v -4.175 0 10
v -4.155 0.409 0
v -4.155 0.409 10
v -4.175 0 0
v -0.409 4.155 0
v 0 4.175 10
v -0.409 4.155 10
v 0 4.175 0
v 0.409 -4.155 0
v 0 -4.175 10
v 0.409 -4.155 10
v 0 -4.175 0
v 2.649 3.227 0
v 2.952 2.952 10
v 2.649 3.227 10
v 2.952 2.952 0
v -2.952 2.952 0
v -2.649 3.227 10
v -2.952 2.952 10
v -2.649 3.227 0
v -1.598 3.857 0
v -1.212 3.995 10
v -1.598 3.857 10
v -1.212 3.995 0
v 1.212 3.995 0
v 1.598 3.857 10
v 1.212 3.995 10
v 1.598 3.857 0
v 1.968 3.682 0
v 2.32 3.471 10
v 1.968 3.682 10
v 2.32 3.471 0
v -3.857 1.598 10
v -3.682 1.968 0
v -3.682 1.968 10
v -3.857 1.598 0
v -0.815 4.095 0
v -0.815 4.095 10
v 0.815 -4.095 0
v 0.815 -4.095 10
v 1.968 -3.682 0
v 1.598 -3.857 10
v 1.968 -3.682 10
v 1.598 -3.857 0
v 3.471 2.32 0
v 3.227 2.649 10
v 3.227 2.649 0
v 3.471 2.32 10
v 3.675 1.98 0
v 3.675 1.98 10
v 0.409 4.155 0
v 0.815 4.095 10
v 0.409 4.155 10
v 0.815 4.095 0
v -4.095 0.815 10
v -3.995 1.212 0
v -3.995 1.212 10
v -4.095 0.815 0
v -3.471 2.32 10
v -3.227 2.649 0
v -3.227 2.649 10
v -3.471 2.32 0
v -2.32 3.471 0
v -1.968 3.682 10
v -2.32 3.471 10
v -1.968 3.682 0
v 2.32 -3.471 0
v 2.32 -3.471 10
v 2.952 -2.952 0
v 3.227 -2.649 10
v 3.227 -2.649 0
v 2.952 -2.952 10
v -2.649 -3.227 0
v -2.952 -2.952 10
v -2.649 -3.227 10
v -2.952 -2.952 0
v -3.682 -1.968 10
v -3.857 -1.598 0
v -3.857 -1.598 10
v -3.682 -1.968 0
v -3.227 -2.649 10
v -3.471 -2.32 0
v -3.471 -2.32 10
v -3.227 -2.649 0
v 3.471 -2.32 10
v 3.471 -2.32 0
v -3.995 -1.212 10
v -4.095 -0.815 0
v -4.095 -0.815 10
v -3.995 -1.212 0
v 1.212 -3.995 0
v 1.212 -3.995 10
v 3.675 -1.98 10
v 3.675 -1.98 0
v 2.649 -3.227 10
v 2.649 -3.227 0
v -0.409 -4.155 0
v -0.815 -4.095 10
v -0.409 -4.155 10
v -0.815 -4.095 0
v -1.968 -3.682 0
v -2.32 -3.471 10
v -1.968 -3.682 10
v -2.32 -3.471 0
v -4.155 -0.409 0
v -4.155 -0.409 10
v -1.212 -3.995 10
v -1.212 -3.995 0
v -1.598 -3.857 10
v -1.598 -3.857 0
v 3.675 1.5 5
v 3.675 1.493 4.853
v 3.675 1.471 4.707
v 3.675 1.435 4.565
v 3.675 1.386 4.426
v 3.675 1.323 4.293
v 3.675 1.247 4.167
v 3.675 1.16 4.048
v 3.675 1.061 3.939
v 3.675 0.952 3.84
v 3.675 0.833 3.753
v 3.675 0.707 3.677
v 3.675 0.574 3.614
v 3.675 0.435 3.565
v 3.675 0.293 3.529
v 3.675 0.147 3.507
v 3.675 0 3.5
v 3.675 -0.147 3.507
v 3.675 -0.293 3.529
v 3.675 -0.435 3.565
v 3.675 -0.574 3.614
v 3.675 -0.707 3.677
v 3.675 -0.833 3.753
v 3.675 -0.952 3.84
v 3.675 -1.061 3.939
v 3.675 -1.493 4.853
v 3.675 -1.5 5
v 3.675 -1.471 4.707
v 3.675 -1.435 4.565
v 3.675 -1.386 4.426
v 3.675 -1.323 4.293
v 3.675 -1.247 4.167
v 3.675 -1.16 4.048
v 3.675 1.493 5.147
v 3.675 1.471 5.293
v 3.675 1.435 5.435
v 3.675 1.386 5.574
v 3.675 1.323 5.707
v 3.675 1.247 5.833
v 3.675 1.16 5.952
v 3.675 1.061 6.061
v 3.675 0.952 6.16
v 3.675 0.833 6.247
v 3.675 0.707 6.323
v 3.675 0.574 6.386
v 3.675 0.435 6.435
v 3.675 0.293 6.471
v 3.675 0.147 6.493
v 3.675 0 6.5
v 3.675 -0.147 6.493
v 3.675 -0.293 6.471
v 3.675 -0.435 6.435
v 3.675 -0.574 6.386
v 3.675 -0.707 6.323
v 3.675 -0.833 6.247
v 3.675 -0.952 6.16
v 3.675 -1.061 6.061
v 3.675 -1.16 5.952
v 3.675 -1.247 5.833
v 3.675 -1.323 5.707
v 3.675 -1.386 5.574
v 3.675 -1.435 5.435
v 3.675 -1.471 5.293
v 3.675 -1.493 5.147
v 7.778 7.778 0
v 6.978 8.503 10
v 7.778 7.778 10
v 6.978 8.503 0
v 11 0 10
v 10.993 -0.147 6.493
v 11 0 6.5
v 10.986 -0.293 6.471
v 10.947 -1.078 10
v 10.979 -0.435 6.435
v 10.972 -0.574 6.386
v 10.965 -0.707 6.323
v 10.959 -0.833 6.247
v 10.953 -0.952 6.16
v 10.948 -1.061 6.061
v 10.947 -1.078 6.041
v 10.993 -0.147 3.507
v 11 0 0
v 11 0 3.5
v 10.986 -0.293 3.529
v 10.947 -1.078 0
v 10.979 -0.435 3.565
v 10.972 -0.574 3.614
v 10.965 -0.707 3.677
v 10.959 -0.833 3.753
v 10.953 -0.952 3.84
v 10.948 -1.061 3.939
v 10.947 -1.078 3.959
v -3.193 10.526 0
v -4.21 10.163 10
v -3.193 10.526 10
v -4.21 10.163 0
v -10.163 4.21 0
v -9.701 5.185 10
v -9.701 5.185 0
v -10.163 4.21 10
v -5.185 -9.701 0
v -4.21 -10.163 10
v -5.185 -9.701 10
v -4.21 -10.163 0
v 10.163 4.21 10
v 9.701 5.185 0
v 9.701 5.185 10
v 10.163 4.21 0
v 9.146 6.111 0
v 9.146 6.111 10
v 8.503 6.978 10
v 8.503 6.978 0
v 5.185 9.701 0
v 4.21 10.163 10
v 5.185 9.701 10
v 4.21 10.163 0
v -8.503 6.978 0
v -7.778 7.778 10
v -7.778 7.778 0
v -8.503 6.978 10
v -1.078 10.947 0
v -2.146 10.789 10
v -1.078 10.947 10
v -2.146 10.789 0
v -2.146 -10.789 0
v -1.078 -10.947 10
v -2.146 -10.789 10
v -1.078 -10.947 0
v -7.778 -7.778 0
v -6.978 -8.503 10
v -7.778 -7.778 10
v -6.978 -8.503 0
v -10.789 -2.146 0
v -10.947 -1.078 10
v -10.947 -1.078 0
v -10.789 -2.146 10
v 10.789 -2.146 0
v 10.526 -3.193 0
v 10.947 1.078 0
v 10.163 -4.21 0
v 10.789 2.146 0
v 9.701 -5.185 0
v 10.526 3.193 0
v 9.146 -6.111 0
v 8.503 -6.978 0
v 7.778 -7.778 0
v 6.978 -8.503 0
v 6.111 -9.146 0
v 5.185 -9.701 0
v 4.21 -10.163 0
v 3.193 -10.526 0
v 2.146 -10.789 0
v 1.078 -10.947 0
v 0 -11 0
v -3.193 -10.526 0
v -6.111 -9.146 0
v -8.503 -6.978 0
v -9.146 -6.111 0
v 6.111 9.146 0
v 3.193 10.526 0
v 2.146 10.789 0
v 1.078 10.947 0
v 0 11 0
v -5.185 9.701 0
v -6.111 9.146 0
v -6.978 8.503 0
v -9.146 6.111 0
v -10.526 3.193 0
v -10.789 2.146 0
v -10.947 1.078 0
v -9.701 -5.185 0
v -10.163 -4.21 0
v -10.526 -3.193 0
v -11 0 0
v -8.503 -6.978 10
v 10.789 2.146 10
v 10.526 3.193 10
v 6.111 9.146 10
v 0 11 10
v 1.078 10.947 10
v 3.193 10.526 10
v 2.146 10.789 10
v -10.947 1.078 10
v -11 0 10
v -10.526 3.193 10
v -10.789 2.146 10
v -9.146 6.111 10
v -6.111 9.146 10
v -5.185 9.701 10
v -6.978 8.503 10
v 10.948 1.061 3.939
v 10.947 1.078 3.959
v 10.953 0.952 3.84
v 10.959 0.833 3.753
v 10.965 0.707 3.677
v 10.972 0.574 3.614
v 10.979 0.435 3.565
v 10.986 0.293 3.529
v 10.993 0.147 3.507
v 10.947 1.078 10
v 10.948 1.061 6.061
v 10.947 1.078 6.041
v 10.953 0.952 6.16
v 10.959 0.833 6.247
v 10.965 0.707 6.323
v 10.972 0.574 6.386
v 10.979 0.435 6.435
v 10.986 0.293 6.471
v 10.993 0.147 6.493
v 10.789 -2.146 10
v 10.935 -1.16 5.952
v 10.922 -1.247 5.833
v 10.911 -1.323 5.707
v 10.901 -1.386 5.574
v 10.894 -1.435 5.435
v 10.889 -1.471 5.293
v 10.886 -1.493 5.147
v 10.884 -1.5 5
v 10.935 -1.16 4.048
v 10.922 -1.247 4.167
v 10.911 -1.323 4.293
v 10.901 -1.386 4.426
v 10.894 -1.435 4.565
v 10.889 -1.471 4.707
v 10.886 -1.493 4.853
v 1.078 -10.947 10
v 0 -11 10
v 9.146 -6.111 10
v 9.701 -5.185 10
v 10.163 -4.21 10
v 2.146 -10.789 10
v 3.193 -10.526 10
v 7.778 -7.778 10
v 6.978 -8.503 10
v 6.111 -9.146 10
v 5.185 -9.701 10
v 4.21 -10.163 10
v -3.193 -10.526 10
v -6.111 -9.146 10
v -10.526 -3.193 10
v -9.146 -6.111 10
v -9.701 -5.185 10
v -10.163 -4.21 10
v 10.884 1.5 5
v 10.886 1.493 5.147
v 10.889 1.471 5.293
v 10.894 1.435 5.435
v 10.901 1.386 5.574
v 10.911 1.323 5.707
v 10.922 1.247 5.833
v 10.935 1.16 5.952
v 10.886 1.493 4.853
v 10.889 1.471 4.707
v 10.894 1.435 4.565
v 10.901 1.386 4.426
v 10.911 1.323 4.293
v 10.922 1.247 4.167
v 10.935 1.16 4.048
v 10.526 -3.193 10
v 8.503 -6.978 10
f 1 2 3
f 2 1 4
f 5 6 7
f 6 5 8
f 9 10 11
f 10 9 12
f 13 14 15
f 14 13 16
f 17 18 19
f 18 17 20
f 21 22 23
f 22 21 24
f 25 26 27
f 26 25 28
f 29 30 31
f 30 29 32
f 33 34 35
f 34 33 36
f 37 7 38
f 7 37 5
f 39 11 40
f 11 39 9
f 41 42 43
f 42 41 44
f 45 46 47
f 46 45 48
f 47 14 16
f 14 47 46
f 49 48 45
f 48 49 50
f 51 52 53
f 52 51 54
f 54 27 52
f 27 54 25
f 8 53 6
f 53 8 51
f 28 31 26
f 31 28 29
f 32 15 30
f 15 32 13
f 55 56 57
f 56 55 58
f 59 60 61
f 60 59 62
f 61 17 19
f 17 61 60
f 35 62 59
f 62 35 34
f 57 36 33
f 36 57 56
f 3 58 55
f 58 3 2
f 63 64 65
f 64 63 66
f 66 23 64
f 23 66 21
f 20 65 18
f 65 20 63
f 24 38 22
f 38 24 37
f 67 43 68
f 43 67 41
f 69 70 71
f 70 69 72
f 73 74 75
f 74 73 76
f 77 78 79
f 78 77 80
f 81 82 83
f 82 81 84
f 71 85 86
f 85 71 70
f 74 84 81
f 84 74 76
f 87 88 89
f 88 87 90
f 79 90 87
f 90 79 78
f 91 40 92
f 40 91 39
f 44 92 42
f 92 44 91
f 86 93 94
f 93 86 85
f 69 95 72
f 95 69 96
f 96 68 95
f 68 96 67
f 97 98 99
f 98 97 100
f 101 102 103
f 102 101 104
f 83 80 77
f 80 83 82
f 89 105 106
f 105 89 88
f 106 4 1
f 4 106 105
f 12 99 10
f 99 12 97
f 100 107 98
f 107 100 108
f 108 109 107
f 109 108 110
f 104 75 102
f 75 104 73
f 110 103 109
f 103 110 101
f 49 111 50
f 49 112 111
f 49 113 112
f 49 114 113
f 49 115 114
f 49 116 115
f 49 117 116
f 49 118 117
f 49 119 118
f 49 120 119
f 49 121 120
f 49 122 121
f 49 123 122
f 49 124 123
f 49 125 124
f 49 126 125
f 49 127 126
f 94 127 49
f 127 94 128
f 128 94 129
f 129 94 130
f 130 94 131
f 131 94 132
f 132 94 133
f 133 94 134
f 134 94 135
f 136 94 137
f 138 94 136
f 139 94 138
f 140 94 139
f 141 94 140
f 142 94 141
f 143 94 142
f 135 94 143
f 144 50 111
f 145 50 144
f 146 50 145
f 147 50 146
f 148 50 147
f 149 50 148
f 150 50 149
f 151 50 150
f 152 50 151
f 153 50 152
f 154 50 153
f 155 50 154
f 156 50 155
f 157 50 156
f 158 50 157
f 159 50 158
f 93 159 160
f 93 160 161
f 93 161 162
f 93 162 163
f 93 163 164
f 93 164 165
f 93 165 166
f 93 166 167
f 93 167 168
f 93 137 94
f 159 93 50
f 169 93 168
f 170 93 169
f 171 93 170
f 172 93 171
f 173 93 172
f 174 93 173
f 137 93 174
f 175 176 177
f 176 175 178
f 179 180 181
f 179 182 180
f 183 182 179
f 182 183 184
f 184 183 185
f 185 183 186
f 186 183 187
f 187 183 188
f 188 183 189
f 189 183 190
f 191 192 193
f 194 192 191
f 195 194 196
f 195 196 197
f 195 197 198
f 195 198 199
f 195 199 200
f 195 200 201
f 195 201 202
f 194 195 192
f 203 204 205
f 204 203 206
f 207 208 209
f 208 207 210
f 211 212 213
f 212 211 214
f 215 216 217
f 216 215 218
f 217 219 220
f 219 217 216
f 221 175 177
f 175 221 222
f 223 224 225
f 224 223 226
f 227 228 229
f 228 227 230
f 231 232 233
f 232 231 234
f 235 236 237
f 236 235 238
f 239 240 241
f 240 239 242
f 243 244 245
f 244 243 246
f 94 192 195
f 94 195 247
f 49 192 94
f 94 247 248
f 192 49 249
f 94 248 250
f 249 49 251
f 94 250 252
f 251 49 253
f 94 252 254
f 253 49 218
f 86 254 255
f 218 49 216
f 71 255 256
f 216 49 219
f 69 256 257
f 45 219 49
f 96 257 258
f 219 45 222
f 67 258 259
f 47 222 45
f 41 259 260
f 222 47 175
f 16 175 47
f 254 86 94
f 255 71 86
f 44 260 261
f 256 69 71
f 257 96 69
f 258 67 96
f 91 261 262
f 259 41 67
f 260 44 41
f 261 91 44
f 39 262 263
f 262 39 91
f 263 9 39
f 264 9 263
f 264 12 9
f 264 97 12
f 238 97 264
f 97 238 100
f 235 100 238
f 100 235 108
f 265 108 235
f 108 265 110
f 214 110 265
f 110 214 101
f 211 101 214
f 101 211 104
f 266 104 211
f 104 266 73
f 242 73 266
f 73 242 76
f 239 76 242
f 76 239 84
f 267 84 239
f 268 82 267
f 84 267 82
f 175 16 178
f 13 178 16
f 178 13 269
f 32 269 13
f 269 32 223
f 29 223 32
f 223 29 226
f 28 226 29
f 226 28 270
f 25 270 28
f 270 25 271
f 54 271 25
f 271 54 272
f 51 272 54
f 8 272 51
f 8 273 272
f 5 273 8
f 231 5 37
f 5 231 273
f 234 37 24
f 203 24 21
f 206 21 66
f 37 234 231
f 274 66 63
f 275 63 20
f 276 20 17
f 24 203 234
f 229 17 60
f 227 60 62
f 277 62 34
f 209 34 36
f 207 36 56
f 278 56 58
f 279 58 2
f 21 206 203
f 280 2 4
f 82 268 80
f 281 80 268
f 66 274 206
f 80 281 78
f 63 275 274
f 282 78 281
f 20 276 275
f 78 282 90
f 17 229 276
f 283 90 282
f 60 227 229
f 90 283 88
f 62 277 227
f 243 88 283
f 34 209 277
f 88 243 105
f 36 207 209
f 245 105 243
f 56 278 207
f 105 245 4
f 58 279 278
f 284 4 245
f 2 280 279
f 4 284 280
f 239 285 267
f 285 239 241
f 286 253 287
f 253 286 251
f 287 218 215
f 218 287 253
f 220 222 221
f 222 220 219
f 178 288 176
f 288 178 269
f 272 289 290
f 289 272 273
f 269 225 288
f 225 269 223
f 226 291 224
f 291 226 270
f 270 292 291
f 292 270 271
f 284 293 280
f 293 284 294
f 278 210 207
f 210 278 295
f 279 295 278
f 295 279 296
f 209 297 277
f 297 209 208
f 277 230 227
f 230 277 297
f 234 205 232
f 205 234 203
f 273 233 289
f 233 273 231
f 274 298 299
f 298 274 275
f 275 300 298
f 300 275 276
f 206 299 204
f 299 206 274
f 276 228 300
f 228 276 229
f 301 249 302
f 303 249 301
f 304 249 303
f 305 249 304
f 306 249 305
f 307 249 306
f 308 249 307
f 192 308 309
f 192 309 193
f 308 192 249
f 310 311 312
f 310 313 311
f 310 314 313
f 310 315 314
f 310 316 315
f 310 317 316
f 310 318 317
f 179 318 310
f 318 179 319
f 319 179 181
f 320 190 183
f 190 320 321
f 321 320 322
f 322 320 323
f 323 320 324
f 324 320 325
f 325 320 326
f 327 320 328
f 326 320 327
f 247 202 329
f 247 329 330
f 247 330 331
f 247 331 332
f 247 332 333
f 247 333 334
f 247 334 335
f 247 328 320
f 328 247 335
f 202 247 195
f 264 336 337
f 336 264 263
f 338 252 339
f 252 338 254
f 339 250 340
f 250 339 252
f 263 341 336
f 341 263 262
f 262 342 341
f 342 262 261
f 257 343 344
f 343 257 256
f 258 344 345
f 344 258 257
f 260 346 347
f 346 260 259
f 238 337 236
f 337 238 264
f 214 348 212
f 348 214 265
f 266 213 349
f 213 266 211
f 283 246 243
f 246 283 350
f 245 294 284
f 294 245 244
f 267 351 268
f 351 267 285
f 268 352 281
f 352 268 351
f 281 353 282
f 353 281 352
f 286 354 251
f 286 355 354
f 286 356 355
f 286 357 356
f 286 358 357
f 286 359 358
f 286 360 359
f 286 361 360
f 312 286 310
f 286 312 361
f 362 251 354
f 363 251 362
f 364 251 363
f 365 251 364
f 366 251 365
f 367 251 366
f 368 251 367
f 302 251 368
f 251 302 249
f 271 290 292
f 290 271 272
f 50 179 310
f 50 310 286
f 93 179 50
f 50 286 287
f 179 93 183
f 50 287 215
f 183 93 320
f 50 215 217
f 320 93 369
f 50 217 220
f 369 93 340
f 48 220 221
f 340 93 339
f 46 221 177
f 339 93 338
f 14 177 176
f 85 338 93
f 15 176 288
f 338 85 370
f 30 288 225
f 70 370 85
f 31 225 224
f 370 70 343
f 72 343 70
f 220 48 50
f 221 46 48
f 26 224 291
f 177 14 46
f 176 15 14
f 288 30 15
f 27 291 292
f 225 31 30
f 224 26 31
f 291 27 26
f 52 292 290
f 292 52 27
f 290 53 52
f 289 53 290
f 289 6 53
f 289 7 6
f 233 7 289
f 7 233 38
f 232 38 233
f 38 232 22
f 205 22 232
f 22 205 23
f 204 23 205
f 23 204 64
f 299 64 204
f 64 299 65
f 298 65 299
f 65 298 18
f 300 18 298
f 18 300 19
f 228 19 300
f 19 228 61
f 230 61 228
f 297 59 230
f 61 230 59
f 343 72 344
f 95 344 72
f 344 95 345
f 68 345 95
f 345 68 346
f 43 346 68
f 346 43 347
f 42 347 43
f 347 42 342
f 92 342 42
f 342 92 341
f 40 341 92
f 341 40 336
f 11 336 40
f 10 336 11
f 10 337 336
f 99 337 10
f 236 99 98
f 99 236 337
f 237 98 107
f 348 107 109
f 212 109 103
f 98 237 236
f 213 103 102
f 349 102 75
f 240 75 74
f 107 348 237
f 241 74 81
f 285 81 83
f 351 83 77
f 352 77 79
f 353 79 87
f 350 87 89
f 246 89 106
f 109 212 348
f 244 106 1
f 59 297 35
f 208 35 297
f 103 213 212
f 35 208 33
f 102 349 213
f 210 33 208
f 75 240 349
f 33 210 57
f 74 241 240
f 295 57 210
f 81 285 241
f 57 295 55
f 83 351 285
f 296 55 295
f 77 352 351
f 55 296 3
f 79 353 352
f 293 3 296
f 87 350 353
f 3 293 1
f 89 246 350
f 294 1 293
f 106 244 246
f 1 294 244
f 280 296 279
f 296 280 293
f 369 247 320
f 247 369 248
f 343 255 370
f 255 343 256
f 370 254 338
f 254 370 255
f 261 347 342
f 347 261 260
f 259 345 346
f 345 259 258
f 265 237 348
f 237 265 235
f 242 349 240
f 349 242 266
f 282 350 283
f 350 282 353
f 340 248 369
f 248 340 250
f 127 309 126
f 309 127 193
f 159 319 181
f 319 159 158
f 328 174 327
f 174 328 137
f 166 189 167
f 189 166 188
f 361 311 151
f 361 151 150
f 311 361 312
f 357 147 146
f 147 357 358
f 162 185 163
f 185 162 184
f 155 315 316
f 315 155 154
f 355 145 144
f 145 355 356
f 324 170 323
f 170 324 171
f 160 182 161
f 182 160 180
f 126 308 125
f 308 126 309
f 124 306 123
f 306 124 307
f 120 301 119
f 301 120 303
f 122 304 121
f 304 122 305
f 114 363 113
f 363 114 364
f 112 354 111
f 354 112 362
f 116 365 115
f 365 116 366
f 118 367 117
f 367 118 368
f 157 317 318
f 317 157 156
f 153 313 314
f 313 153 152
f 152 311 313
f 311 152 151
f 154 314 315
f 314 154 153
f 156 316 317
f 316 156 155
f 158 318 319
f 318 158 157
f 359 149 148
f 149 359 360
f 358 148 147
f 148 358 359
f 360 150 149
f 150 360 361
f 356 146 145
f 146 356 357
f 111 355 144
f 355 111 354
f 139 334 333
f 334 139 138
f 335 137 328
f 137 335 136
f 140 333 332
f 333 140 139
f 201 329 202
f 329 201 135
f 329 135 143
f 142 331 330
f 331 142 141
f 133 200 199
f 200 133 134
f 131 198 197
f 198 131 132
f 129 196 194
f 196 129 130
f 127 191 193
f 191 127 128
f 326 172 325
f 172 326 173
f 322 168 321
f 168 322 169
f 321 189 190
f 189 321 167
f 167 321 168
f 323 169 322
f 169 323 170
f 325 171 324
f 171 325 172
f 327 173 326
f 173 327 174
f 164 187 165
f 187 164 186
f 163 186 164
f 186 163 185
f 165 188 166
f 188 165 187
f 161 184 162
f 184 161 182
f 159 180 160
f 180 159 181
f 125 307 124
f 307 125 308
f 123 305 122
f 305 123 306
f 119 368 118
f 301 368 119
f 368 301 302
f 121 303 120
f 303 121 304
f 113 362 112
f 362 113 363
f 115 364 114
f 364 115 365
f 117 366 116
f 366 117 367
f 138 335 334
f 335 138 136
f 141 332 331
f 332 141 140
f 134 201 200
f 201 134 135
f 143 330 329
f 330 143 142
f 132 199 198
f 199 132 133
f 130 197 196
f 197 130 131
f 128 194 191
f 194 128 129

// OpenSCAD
// file: parameters.scad
// =============================================================================
// Gen-BZ — nightly 2026-10-11 (physics_scorer, honest magpylib watts)
// Minimum-gap, wire-saver stator for the Gen-BX rotors: only 5.4 mm of copper (12 layers), so the magnet faces are just 8.0 mm apart and peak Bz at the copper reaches ≈0.64 T. It holds ~20 % less copper than Gen-BX (≈300 m, leaving ~90 m of the spool spare and much less winding), and loses only ≈5.5 % of the watts vs Gen-BX — the best watts-per-metre of wire tonight.
// Clocking 0 deg (magnets N facing S) + D-flat keyed bore + index notch + flip-symmetric hole map.
// Windable 2-piece bobbin; turns = physics_scorer turns_fit; copper only between flanges.
// Steel back-iron: 2× Ø168 × 4.76 mm (3/16") mild-steel discs (steel_backiron_disc.dxf); magnets sit ON the steel
// (through-pockets) -> score with --back-iron. Night 2026-10-11.
// =============================================================================
topology            = "dual_rotor";

// --- Wire / winding (physics_scorer winding-fit) -------------------------------
wire_awg            = 26;
wire_od             = 0.45;     // insulated OD mm (bare 0.405)
fill_realistic      = 0.65;     // insulated-wire area / window (DENSE layered wind with a jig; scorer cap 0.65)
turns               = 328;       // = physics_scorer turns_fit (do NOT raise)
coil_former_type    = "bobbin";
coil_core_inset     = 14.87;     // radial copper build: hub = copper boundary inset by this
wind_build_axial    = 0.0;      // nothing proud of the flanges
wind_build_radial   = 0.0;

// --- Bobbin (base + lid) ---------------------------------------------------------
coil_id_r           = 53.00;    // copper boundary sector
coil_od_r           = 88.00;
span_deg            = 26.43;    // = pitch - 2*asin((wall+0.85)/coil_id_r) -> >=1.2 mm stator web
former_web          = 5.40;     // copper height between flanges (TALL copper: steel keeps Bz up)
flange_t            = 0.80;     // >= 0.8 mm FDM wall rule (tall winds push on the flanges)
wall                = 0.80;     // flange lip beyond copper
former_bare_h       = former_web + 2 * flange_t;
coil_envelope_h     = former_bare_h + 2 * wind_build_axial;
tab_w               = 7.0;
tab_len             = 7.0;
tab_h               = former_bare_h / 2;
pin_d               = 1.9;      // 1.75 mm filament locating pin
coil_mount_r        = coil_od_r + 0.2 + 4.0;
lead_y              = 1.6;
lead_slot_w         = 0.9;
lead_groove_d       = 0.6;

// --- Gap -------------------------------------------------------------------------
run_clear           = 0.50;     // rotor face -> flange
gap_spacer_h        = run_clear + wind_build_axial;
m2m                 = coil_envelope_h + 2 * run_clear;   // rotor face to rotor face (= gap_sleeve length)

// --- Stator ----------------------------------------------------------------------
coil_stations       = 12;
bay_clear           = 0.25;
stator_thick        = former_bare_h;                        // bobbins flush both faces
stator_od           = 194;
shaft_clear_stator  = 14.0;     // stator is static; gap sleeve OD 12 spins inside

// --- Rotor(s) --------------------------------------------------------------------
magnet_Br           = 1.43;     // N52
magnet_d_large      = 20.0;
magnet_h_large      = 5.0;      // one O20x5 per pocket
magnet_h_small      = 5.0;      // unused: no O5 pockets in this kit
halbach_magnetisation = "none";  // NO O5 assist magnets in this kit (scan: they lower the 4-pole score)
rotor_b_same_axis   = true;     // same-index magnets share one axis: N faces S across the gap
large_pocket_d      = 20.3;
small_pocket_d      = 5.3;
pocket_h            = 5.00;     // THROUGH the carrier: magnet back face sits on the steel disc (FLUSH seat: carrier = magnet height, magnet face level with the rotor face)
large_n             = 8;
R_large             = 71.0;
small_r_list        = [];       // no O5 pockets
carrier_od          = 168.0;
carrier_thick       = pocket_h;
hub_h               = 12.0;     // > steel_t + insert: radial set-screw clears the steel
hub_od              = 24.0;     // slim hub so the M4 brace rods fit at R~18 inside the coil ring
hub_insert_d        = 4.0;      // M3 heat-set insert, radial, bears on the D-flat
rotor_b_offset_deg  = 0.0;      // CLOCKING: magnets directly opposite
shaft_key           = "dflat";
dflat_depth         = 0.5;      // 8 mm shaft with 0.5 mm flat (7.5 across flat)
index_notch_d       = 3.0;

// --- Steel back-iron (buyable laser-cut) -------------------------------------------
steel_t             = 4.76;      // mild steel thickness (image method ignores it; sized from steel_flux.py so the return path stays well below saturation)
steel_center_hole   = 26.0;     // slips over the rotor hub (OD 24)
steel_od            = carrier_od;   // steel disc OD = rotor carrier OD

// --- Modular MAX interface ----------------------------------------------------------
shaft_bore          = 8.35;
dflat_x             = 4.0 - dflat_depth + (shaft_bore - 8.0) / 2;
bearing_d           = 21.85;
bearing_h           = 7.2;
m3_clear            = 3.5;
bolt_r_inner        = 30.0;     // M3 steel-disc clamp bolts (inside the magnet ring)
bolt_n_inner        = 4;
bolt_inner_angles   = [0, 90, 180, 270];
bolt_r_outer        = 44.0;     // second M3 steel-disc clamp ring
bolt_outer_angles   = [67.5, 112.5, 247.5, 292.5];
flange_bolt_r       = 91.5;     // frame rods: OUTSIDE the rotor OD (rotors spin inside them)
flange_bolt_n       = 4;
flange_bolt_offset  = 45.00;    // between coil stations -> never cuts a lead groove/tab
brace_r             = 18.0;
brace_d             = 4.3;      // temporary M4 jack rods (assembly only)
brace_n             = 4;
brace_angles        = [45, 135, 225, 315];          // flip-symmetric

spacer_pad_od       = 14.0;
spacer_pad_id       = m3_clear;
endbell_od          = 193.0;
endbell_thick       = 8.0;
endbell_shaft_clear = 10.0;
collar_h            = 10.0;
standoff_od         = 9.0;
frame_standoff_h    = run_clear + carrier_thick + hub_h + collar_h + 2.0;
sleeve_od           = 12.0;
plate_max_mm        = 410;

$fn = 64;
// main file
// Gen-BZ — shaft collar with D-flat bore (set screw bears on the flat); print x4
include <parameters.scad>;
$fn = 64;
// D-flat keyed bore: flat faces +X (angle 0 = magnet pocket 0 = index notch)
module dflat_bore(h) {
    intersection() {
        cylinder(d=shaft_bore, h=h);
        translate([-shaft_bore, -shaft_bore, 0]) cube([shaft_bore + dflat_x, 2*shaft_bore, h]);
    }
}

od = 22; h = collar_h; set_d = 3.0;
difference() {
    cylinder(d=od, h=h);
    translate([0, 0, -0.1]) dflat_bore(h + 0.2);
    translate([0, 0, h/2]) rotate([0, 90, 0]) cylinder(d=set_d, h=od);
}
